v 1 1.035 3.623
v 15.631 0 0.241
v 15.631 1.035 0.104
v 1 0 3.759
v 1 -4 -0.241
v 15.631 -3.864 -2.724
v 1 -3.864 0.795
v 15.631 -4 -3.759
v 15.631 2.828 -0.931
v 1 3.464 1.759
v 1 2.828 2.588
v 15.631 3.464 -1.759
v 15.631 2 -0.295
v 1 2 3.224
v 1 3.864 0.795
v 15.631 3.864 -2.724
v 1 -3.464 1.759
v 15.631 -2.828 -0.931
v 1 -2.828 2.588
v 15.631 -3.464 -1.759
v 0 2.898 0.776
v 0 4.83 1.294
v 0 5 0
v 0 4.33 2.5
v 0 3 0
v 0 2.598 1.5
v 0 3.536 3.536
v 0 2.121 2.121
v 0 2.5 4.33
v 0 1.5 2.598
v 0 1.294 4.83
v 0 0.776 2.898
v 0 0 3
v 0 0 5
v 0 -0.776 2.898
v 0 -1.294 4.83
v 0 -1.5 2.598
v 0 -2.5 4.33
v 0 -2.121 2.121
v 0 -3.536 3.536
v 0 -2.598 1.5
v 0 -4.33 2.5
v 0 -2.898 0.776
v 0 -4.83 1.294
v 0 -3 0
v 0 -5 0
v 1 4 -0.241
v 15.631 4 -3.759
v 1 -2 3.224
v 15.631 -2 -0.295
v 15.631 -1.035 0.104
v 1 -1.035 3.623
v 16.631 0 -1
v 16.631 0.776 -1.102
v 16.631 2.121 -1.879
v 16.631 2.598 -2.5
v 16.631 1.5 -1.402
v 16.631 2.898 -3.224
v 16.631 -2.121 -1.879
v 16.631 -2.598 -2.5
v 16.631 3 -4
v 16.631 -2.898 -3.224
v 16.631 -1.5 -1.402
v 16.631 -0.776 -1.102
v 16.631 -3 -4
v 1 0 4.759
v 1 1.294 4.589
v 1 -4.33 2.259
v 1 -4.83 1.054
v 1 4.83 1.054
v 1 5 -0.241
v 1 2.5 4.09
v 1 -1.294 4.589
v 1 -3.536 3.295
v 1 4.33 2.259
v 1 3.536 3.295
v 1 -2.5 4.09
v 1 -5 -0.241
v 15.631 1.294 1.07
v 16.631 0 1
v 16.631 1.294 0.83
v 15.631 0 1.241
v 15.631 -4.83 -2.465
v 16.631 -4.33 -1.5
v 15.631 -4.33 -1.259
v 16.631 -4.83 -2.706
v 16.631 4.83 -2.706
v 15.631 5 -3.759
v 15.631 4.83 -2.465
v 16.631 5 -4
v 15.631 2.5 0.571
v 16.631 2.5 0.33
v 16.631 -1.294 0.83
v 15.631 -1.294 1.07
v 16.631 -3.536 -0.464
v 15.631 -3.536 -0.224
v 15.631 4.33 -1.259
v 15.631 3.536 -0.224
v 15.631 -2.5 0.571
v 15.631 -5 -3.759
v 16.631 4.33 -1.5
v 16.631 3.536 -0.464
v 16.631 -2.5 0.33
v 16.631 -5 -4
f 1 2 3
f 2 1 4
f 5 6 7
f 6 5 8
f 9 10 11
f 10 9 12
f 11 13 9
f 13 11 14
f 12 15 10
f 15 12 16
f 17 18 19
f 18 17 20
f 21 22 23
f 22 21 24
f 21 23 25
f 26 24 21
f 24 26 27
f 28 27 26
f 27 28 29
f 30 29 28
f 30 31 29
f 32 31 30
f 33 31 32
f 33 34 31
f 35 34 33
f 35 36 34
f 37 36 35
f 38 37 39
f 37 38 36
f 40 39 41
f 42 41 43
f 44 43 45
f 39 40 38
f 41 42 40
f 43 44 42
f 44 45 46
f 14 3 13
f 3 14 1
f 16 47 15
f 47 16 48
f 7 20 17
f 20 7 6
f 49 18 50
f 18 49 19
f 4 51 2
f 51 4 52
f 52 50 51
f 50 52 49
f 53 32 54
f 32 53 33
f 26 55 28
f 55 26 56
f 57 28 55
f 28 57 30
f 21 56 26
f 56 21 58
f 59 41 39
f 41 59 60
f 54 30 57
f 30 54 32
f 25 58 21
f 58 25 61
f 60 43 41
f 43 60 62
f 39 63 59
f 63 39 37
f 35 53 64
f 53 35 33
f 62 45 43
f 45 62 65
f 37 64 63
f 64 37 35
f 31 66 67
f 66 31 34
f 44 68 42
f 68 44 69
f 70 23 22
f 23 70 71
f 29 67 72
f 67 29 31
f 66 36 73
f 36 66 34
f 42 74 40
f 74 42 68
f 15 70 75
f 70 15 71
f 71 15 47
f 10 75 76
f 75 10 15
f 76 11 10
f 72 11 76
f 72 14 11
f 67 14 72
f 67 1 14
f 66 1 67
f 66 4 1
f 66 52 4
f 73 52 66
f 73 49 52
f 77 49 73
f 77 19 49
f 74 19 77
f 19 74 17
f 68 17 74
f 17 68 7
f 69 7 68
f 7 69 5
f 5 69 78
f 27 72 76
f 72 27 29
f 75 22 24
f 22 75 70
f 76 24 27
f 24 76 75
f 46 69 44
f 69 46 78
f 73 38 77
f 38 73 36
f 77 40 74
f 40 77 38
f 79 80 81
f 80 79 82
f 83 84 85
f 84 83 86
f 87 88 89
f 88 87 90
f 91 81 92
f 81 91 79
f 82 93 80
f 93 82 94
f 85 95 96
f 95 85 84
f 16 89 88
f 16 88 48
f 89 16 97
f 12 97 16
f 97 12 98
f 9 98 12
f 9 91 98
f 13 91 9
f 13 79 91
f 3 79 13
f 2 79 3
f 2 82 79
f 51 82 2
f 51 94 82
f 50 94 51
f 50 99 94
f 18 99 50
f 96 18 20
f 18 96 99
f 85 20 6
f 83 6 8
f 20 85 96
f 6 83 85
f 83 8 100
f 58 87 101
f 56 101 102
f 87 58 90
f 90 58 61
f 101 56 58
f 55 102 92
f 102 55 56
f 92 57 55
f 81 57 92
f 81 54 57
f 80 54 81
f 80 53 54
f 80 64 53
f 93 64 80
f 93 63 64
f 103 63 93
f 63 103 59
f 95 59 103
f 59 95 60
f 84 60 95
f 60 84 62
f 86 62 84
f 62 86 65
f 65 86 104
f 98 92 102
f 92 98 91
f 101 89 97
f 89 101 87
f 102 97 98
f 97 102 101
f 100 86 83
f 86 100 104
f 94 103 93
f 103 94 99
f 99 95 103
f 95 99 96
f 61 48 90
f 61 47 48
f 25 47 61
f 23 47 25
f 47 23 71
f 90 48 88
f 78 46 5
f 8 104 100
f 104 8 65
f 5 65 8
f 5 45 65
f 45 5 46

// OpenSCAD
// file: ../build_environments.scad
// build_environments.scad: modules to build level sections
//

module pool(diameter=10.0, wall_height=2.0, step_width=3.0, connections=[])
{
    difference() {
        union() {
        difference() {
            cylinder(h=0.5,r1=diameter+step_width,r2=diameter+step_width,$fn=48);
            translate([0,0,-0.1])
                cylinder(h=0.7,r1=diameter,r2=diameter,$fn=48);
        }
        difference() {
            cylinder(h=wall_height,r1=diameter+step_width+1.0,r2=diameter+step_width+1.0,$fn=48);
            translate([0,0,-0.1])
                cylinder(h=wall_height+0.2,r1=diameter+step_width,r2=diameter+step_width,$fn=48);
        }
        }
    
        for (c = connections)
        {
            rotate([0,90,0]) {
                angle = atan2(c[1],c[0]);
                rotate([-angle,0,0]) {
                    cylinder(h=diameter+5.0,r1=c[2],r2=c[2],$fn=48);
                }
            }
        }
    }
}

module straight(length=10.0, width=2.0, dy1=0.0, dy2=0.0, dz=0.0)
{
    dims = [0, 0, 0, 0, 0, (dz/length)];
    matrix = [
        [ 1, dims[0], dims[1], 0 ],
        [ dims[2], 1, dims[4], 0 ],
        [ dims[5], dims[3], 1, 0 ],
        [ 0, 0, 0, 1 ]
    ];
    multmatrix(matrix)
    difference() {
        translate([dy1,0,0])
        union() {
            rotate([0,90,0]) {
                difference() {
                    cylinder(h=(length-dy1-dy2),r1=width+1.0,r2=width+1.0,$fn=24);
                    translate([0,0,-0.1])
                        cylinder(h=(length-dy1-dy2+0.2),r1=width,r2=width,$fn=24);
                }
                difference() {
                    cylinder(h=1.0,r1=width+2.0,r2=width+2.0,$fn=24);
                    translate([0,0,-0.1])
                        cylinder(h=1.2,r1=width,r2=width,$fn=24);
                }
                translate([0,0,(length-dy1-dy2)-1.0]) {
                    difference() {
                        cylinder(h=1.0,r1=width+2.0,r2=width+2.0,$fn=24);
                        translate([0,0,-0.1])
                            cylinder(h=1.2,r1=width,r2=width,$fn=24);
                    }
                }
            }
        }
        translate([0,0,-(2*width+4.0)/2])
            cube([3*length,3*length,2*width+4.0],center=true);
    }
}

module curve(p0=[0,0], center=[0,0], dir=1, angle=0.0, width=2.0)
{
    radius = sqrt((p0[0]-center[0])*(p0[0]-center[0]) + (p0[1]-center[1])*(p0[1]-center[1]));
    if (dir == 0) {
        difference() {
            rotate([0,0,-90])
            difference() {
                rotate_extrude(angle = angle, convexity = 10, $fn=32)
                    translate([radius, 0, 0])
                        circle(r = width+1.0,$fn=24);
                rotate([0,0,-1.0])
                    rotate_extrude(angle = angle+2.0, convexity = 10, $fn=32)
                        translate([radius, 0, 0])
                            circle(r = width,$fn=24);
            }
            translate([0,0,-(2*width+4.0)/2])
                cube([5*radius,5*radius,2*width+4.0],center=true);
        }
    }
    else {
        difference() {
            rotate([0,0,90])
            difference() {
                rotate_extrude(angle = -angle, convexity = 10, $fn=32)
                    translate([radius, 0, 0])
                        circle(r = width+1.0,$fn=24);
                rotate([0,0,1.0])
                    rotate_extrude(angle = -angle-2.0, convexity = 10, $fn=32)
                        translate([radius, 0, 0])
                            circle(r = width,$fn=24);
            }
            translate([0,0,-(2*width+4.0)/2])
                cube([5*radius,5*radius,2*width+4.0],center=true);
        }
    }

}

// test pool
//pool(diameter=12.0000, wall_height=3.0000, step_width=3.0000, connections=[[0.0000,-26.0000,2.0000], [23.6074,0.0000,2.0000]]);

// test straight, slope
//straight(length=26.0000, width=2.0000, dy1=11.8322, dy2=6.7082, dz=0.0000);
//straight(length=29.1549, width=12.0000, dy1=0.0000, dy2=0.0000, dz=-15.0000);

// test curve
//curve(p0=[23.6074, 0.0000], center=[23.6074, 5.0000], dir=0, angle=60.1011, width=2.0000);
//curve(p0=[33.6426, 12.4219], center=[37.9771, 9.9295], dir=1, angle=120.4627, width=2.0000);
// main file
use <../build_environments.scad>;
straight(length=16.6309, width=3.0000, dy1=0.0000, dy2=0.0000, dz=-4.0000);
